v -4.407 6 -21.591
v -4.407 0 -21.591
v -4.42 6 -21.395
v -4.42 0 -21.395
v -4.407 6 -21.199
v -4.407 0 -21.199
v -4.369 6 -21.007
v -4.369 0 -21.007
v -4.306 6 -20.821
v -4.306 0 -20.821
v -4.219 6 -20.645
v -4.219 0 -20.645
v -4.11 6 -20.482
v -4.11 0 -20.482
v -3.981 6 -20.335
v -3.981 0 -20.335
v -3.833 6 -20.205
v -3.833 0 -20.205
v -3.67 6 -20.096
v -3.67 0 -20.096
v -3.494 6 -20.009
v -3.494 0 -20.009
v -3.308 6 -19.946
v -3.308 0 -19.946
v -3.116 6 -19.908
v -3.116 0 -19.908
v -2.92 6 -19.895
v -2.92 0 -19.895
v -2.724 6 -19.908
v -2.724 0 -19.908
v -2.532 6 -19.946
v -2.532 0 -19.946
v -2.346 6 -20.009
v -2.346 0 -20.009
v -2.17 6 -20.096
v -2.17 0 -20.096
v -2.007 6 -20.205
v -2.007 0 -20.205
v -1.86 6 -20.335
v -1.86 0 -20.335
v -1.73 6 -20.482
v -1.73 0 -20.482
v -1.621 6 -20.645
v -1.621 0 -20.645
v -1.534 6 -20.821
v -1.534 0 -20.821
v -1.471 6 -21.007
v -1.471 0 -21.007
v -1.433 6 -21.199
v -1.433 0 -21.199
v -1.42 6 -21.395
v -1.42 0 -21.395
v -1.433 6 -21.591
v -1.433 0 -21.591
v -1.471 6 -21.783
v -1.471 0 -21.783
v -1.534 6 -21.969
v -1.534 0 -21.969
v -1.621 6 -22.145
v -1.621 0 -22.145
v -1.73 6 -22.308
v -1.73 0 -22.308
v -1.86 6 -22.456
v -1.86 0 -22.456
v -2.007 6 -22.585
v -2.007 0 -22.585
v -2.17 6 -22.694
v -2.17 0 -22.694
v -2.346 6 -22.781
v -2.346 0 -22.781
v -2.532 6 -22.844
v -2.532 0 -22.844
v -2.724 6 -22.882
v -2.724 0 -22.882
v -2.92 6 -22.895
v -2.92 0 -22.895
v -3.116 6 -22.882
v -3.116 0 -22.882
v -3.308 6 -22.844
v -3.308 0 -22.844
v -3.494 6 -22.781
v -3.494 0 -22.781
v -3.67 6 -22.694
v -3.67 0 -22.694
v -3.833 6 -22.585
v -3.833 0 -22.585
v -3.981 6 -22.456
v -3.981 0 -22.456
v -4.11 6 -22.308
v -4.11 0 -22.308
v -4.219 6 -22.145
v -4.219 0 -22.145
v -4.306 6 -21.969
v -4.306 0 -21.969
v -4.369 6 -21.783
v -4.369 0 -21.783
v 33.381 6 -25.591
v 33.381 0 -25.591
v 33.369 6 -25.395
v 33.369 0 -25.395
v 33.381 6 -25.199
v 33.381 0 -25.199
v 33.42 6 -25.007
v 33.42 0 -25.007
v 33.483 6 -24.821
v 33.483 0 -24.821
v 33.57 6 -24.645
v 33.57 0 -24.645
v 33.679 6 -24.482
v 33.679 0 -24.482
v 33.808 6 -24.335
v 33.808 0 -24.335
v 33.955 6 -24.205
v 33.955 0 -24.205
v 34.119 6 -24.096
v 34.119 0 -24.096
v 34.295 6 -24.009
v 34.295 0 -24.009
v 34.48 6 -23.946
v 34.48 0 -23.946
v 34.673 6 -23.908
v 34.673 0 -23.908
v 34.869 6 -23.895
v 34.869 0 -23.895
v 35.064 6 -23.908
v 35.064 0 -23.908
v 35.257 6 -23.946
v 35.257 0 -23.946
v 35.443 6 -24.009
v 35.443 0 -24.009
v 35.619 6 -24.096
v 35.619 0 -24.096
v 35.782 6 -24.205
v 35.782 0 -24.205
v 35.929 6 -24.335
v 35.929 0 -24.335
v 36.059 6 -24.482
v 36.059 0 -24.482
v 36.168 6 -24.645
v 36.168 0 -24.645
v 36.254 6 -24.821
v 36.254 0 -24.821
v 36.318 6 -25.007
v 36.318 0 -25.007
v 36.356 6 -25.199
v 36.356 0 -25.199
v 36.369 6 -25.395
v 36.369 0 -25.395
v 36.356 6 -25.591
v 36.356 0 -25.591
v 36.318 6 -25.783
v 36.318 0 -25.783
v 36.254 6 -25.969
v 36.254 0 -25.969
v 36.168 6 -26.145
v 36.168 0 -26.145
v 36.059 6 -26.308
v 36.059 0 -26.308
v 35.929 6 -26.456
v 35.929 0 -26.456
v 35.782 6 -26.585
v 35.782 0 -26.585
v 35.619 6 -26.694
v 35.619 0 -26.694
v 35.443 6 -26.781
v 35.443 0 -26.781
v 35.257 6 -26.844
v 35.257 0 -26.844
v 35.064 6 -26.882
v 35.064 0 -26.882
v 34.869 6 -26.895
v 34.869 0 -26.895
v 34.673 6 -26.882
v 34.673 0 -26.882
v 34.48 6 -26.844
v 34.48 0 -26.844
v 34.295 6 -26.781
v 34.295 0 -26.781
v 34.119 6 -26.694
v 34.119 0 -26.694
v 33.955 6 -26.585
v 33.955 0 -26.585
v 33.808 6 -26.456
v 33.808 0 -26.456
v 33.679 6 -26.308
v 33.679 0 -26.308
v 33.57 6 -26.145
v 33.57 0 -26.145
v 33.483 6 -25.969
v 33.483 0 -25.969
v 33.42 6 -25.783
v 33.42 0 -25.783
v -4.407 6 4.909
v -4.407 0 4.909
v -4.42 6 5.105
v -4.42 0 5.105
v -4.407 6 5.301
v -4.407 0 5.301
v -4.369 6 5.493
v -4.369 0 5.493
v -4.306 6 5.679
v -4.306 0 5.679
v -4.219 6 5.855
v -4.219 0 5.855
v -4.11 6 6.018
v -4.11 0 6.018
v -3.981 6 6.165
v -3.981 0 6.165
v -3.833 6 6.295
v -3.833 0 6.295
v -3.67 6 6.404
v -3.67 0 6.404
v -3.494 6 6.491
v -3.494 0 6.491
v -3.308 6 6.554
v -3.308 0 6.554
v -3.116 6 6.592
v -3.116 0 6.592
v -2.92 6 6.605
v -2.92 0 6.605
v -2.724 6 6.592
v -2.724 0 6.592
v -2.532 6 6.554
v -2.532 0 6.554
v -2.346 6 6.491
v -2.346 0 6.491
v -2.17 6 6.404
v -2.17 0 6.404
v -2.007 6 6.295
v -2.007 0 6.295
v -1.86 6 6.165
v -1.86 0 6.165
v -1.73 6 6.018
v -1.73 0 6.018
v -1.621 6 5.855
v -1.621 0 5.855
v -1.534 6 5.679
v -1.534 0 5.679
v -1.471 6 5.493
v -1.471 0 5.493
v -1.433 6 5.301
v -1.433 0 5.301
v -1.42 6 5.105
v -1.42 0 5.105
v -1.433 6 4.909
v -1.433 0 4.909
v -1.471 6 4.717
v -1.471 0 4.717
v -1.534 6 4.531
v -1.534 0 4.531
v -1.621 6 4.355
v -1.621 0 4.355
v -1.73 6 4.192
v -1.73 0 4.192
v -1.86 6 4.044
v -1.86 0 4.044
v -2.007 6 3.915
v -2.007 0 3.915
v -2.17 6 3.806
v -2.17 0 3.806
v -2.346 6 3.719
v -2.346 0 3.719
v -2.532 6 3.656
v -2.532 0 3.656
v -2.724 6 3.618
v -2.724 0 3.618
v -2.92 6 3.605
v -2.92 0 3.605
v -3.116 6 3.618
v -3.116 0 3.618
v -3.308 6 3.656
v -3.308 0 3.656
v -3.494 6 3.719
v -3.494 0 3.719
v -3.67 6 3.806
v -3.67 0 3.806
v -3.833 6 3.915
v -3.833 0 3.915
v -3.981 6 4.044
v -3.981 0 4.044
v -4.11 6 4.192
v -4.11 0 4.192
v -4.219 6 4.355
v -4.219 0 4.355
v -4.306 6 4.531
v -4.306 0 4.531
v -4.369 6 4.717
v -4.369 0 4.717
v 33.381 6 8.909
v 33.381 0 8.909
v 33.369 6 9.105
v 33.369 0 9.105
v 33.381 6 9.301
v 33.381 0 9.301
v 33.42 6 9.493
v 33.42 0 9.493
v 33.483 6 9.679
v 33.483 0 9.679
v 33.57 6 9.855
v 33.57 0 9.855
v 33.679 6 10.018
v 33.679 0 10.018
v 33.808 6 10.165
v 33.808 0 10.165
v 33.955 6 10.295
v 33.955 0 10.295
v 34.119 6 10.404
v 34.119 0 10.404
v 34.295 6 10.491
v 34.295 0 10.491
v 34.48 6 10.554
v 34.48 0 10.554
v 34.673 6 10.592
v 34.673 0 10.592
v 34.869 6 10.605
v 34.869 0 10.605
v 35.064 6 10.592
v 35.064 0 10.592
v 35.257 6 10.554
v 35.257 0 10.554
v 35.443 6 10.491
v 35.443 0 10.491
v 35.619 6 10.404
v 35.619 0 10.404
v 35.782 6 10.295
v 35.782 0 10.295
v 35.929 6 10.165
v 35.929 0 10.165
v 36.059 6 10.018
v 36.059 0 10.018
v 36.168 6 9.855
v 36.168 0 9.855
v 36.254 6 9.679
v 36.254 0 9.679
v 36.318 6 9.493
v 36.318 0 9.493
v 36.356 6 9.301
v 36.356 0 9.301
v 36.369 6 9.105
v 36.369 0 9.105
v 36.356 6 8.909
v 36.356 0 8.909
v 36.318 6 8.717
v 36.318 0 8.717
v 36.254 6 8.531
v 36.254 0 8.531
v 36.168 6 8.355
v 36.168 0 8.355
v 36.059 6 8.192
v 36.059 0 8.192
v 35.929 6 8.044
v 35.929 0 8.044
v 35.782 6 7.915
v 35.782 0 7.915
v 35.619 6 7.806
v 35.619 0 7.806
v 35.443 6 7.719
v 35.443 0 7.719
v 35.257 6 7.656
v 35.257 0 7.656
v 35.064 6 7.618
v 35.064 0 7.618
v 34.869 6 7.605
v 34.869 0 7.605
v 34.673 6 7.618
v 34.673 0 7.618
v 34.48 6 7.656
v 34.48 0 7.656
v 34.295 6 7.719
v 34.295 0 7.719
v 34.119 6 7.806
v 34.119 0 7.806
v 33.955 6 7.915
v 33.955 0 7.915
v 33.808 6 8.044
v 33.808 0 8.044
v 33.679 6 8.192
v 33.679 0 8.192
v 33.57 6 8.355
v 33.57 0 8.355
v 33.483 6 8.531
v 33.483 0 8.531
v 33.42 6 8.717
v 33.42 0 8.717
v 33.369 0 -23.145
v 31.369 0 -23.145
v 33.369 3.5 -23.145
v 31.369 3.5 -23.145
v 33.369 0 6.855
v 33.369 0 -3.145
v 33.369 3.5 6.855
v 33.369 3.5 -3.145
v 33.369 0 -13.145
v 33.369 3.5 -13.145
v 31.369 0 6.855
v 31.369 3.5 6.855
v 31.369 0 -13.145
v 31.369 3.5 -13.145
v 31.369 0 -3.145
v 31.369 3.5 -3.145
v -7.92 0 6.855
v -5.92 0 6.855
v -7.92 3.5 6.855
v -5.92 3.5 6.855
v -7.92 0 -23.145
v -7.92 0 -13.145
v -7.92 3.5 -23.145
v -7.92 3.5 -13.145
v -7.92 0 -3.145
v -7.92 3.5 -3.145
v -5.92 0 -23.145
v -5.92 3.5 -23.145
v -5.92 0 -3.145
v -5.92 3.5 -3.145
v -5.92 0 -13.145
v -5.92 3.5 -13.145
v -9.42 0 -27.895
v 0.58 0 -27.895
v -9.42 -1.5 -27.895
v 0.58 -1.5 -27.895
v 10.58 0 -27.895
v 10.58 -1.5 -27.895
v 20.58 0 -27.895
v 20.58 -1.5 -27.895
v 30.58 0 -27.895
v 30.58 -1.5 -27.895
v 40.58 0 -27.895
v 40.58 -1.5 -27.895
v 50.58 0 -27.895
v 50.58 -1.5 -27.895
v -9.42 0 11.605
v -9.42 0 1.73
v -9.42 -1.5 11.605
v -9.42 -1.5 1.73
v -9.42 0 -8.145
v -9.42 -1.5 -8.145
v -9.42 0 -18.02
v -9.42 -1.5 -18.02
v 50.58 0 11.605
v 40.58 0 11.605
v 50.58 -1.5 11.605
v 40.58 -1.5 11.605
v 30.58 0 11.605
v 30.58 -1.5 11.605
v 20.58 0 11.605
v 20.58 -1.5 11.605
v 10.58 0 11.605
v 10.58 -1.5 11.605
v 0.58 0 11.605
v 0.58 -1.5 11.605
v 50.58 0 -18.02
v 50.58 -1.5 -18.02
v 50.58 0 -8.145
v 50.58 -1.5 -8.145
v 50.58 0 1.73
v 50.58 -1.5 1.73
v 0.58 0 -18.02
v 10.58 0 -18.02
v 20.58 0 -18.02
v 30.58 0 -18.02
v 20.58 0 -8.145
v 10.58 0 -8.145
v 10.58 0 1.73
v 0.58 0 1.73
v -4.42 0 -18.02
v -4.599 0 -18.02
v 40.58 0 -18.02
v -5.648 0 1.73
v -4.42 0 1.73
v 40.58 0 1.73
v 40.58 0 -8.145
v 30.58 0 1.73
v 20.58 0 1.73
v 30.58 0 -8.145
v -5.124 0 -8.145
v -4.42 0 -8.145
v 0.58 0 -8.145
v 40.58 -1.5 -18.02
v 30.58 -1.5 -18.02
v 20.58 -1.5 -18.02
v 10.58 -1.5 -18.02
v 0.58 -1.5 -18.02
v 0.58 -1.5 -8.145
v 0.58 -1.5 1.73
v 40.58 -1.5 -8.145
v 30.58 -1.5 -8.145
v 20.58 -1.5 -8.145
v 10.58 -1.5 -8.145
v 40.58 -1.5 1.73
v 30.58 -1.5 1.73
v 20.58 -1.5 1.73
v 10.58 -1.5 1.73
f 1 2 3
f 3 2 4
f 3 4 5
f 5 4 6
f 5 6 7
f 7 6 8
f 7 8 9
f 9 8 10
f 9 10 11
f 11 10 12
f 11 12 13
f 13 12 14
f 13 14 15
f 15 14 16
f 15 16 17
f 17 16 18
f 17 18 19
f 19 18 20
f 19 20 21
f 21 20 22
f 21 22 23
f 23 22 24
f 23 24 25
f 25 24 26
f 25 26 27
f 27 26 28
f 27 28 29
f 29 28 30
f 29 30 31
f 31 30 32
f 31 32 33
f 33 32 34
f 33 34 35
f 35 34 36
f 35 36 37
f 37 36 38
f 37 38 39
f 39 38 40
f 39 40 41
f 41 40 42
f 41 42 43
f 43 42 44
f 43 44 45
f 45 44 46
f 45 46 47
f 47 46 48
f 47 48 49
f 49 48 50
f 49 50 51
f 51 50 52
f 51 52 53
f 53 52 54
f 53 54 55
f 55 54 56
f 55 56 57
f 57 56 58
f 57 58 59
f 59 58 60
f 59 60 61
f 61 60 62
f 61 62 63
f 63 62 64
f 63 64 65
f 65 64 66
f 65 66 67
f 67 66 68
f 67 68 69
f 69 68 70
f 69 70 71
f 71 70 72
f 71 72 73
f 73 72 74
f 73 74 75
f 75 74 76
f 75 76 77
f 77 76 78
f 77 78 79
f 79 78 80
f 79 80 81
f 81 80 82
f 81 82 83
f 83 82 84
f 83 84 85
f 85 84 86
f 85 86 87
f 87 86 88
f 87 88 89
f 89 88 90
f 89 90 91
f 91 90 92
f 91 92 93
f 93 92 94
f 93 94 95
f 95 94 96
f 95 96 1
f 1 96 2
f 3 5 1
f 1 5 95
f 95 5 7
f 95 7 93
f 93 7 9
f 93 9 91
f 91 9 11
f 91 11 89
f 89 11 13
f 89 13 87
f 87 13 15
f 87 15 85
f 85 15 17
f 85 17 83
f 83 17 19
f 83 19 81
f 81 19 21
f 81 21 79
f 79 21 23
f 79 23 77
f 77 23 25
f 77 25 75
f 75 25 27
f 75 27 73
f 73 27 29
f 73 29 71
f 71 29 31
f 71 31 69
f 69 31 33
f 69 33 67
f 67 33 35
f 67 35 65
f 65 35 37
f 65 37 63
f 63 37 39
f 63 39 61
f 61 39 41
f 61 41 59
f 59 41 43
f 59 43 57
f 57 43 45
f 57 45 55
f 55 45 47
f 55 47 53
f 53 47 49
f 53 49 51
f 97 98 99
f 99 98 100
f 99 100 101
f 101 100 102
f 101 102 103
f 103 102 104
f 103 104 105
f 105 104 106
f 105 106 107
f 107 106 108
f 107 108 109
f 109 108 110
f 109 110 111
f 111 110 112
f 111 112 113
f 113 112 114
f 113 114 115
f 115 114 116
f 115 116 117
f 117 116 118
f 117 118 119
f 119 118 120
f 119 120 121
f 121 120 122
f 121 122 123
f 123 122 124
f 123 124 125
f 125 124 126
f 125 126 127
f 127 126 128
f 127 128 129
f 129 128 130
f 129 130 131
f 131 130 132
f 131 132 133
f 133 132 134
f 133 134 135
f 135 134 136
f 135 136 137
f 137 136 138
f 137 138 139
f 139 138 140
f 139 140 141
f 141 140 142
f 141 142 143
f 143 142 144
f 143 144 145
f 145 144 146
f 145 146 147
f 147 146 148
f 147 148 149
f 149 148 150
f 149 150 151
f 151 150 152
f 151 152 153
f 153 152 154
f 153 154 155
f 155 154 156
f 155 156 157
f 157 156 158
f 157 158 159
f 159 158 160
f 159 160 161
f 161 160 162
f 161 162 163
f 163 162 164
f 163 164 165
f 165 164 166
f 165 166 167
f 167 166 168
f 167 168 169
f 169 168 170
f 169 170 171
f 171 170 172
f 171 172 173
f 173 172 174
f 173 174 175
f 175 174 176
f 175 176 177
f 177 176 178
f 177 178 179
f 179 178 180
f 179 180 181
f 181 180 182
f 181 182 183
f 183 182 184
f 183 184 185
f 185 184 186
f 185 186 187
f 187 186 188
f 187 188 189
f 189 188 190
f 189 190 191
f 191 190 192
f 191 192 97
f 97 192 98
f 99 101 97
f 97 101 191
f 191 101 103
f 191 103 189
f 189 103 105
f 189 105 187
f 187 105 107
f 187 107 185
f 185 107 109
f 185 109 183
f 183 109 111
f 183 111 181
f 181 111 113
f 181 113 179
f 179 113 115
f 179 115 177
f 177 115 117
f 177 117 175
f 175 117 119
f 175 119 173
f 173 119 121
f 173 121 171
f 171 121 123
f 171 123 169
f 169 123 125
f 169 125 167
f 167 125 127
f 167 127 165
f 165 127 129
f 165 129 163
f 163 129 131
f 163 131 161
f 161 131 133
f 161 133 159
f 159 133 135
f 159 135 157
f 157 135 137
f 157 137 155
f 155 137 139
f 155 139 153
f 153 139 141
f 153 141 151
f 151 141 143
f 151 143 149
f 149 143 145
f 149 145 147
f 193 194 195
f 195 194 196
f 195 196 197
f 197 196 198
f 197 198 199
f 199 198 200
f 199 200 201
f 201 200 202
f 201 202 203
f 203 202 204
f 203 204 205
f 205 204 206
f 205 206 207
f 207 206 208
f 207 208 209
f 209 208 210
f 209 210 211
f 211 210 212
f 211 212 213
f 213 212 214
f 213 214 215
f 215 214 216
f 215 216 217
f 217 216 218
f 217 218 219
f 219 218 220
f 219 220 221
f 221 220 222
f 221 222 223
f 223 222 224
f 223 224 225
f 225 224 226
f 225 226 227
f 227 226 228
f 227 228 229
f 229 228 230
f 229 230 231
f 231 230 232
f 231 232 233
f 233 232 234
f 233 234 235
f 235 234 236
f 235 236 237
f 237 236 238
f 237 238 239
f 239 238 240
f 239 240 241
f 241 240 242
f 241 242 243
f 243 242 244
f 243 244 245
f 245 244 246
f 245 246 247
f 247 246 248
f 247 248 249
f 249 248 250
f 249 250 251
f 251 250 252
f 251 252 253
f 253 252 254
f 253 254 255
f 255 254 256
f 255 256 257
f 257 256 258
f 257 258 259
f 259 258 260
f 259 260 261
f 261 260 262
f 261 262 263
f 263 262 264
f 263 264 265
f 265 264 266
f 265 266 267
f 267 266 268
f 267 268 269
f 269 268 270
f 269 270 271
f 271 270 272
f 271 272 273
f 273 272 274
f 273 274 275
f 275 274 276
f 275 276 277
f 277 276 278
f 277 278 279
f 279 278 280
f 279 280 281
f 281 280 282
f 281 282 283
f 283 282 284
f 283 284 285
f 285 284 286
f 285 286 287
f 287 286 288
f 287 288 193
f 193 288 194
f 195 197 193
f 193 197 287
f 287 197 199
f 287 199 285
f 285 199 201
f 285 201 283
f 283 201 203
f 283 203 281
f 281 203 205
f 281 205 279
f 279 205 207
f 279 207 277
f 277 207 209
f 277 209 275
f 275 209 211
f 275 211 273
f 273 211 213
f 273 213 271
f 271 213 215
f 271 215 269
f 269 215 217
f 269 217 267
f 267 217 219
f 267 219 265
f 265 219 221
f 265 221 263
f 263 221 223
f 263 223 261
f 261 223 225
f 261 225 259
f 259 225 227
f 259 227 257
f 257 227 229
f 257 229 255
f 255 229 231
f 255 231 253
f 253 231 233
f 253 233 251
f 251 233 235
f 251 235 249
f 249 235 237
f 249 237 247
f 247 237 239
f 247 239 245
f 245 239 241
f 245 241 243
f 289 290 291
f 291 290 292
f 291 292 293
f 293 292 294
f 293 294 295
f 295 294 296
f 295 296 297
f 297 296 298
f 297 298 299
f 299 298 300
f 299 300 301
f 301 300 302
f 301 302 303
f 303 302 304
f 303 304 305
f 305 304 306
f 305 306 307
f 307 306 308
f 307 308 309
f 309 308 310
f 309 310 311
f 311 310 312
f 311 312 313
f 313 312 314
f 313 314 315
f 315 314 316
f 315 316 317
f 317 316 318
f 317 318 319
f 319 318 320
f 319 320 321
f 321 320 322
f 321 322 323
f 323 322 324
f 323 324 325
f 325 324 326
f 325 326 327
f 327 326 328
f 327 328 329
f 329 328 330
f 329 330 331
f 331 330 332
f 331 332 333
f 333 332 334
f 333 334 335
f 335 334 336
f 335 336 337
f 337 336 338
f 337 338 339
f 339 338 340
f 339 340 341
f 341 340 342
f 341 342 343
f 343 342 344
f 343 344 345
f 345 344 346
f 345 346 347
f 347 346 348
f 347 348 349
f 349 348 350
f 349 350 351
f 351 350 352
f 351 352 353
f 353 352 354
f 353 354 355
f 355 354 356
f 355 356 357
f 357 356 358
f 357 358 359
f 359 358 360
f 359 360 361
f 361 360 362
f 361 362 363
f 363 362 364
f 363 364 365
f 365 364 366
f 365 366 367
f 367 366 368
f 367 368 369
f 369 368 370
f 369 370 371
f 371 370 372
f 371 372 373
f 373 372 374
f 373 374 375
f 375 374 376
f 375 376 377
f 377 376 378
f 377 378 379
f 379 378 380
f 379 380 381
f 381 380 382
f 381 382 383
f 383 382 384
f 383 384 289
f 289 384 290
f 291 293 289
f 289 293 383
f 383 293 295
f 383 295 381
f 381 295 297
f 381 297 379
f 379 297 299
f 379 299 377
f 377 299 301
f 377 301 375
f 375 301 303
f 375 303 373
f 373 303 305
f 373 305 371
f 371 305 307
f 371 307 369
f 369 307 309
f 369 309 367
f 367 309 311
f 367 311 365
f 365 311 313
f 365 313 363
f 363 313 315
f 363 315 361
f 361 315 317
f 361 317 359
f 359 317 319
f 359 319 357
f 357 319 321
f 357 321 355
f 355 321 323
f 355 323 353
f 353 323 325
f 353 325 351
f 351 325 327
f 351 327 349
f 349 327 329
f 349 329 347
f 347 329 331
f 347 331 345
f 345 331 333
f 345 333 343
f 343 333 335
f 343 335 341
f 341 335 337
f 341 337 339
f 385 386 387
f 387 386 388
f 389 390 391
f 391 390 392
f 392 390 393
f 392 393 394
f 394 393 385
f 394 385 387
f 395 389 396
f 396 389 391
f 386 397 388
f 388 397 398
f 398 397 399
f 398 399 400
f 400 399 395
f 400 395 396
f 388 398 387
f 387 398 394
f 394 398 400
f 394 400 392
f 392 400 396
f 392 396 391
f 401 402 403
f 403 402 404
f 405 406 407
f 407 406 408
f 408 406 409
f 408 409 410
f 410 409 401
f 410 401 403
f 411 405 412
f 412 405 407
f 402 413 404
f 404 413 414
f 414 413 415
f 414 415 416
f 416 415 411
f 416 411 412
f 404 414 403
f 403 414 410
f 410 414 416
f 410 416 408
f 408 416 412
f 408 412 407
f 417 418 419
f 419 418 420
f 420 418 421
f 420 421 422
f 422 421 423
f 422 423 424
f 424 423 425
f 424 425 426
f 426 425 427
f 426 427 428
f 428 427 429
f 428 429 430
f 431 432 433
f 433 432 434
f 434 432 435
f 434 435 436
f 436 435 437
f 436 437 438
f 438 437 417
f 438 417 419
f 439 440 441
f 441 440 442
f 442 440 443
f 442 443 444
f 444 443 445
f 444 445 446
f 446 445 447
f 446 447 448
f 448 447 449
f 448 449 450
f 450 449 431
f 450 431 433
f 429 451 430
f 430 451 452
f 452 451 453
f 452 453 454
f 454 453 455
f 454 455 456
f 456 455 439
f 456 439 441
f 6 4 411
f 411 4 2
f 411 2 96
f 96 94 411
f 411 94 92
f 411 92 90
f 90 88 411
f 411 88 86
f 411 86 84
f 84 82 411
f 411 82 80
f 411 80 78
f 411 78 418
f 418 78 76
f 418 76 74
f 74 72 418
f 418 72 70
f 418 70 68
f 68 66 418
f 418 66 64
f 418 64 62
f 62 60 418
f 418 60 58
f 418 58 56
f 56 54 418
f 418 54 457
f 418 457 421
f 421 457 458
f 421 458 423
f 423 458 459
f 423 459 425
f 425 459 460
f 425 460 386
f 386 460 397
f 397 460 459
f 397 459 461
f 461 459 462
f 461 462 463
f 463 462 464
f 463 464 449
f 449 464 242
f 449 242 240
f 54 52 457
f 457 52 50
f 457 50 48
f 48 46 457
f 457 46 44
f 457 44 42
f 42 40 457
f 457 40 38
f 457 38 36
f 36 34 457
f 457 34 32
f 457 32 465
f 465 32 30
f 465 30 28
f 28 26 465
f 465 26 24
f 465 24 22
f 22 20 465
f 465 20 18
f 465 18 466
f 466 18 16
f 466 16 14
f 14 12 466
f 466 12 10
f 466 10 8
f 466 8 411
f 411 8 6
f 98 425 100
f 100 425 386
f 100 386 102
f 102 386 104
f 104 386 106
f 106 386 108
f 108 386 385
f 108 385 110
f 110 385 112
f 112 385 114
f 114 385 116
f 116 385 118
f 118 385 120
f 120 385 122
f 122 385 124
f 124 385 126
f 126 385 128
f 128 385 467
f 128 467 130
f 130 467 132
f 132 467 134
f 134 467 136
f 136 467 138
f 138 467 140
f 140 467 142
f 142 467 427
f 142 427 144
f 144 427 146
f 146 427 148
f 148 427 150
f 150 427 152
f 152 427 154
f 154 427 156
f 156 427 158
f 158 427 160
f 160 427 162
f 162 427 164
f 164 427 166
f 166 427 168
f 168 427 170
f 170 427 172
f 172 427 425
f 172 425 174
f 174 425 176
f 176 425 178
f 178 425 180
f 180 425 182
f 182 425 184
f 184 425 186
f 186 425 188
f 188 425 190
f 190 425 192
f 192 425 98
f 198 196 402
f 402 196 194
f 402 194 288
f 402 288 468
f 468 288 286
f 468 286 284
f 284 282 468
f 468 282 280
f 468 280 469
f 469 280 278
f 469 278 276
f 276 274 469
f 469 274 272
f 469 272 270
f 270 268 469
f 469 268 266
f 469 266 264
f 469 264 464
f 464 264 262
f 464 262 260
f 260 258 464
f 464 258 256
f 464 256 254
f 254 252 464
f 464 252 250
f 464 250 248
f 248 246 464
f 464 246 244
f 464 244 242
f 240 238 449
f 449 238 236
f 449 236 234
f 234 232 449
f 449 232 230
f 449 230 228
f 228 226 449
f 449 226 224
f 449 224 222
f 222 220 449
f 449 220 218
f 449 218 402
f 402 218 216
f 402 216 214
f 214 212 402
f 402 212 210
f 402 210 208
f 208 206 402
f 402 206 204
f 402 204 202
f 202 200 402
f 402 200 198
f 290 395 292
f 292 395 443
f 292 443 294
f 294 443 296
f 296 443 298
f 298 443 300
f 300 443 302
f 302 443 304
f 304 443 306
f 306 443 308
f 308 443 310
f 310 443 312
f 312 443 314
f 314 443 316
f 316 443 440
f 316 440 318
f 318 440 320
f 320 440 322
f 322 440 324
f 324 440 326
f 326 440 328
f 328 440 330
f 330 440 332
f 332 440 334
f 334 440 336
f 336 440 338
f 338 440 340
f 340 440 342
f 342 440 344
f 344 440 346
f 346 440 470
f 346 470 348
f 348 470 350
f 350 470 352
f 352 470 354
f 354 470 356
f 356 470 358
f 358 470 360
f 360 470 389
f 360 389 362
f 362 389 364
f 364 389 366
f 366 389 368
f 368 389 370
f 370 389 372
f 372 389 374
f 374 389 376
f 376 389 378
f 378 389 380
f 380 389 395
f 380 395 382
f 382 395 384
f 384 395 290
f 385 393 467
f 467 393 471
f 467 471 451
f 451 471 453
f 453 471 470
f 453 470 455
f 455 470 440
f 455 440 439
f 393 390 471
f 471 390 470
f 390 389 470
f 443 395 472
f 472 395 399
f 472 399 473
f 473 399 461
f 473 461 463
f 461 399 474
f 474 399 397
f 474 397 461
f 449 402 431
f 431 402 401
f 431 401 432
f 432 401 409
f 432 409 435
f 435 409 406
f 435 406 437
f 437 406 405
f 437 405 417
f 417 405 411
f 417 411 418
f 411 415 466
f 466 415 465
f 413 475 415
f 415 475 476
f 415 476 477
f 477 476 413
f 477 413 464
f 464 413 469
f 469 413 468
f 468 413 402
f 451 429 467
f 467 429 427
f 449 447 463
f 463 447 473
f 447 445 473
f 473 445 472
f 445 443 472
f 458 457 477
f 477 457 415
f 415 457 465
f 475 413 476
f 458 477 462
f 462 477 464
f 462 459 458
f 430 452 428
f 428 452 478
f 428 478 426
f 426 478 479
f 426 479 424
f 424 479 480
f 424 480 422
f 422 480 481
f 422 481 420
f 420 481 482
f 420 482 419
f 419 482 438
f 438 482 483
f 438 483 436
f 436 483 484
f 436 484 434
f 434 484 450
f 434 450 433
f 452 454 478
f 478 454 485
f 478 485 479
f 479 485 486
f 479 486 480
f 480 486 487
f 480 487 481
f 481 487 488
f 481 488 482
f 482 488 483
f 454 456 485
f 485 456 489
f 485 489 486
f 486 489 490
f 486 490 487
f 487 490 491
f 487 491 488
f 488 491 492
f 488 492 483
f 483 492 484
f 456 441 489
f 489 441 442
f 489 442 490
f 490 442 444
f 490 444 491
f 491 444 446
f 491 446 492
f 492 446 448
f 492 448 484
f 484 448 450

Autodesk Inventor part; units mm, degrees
ref_plane "YZ Plane" through (0, 0, 0) normal (1, 0, 0) x (0, 1, 0)
ref_plane "XZ Plane" through (0, 0, 0) normal (0, 1, 0) x (-1, 0, 0)
ref_plane "XY Plane" through (0, 0, 0) normal (0, 0, 1) x (1, 0, 0)
sketch "Sketch5" plane through (0, 0, 0) normal (0, 1, 0) x (-1, 0, 0)
  line L0 (9.4203, 11.6048) -> (-50.5797, 11.6048)
  line L1 (-50.5797, 11.6048) -> (-50.5797, -27.8952)
  line L2 (-50.5797, -27.8952) -> (9.4203, -27.8952)
  line L3 (9.4203, -27.8952) -> (9.4203, 11.6048)
  line L4 (-33.3686, -23.1452) -> (-31.3686, -23.1452)
  line L5 (-31.3686, -23.1452) -> (-31.3686, 6.8548)
  line L6 (-31.3686, 6.8548) -> (-33.3686, 6.8548)
  line L7 (-33.3686, 6.8548) -> (-33.3686, -23.1452)
  line L8 (7.9203, 6.8548) -> (5.9203, 6.8548)
  line L9 (5.9203, 6.8548) -> (5.9203, -23.1452)
  line L10 (5.9203, -23.1452) -> (7.9203, -23.1452)
  line L11 (7.9203, -23.1452) -> (7.9203, 6.8548)
  circle A0 centre (2.9203, -21.3952) radius 1.5
  circle A1 centre (2.9203, 5.1048) radius 1.5
  circle A2 centre (-34.8686, -25.3952) radius 1.5
  circle A3 centre (-34.8686, 9.1048) radius 1.5
  point P0 (0, 0)
  dimension "d9" = 60
  dimension "d10" = 39.5
  dimension "d24" = 2
  dimension "d27" = 4.75
  dimension "d29" = 2
  dimension "d31" = 1.5
  dimension "d32" = 4.75
  dimension "d33" = 4.75
  dimension "d40" = 3
  dimension "d41" = 6.5
  dimension "d42" = 6.5
  dimension "d43" = 3
  dimension "d44" = 6.5
  dimension "d45" = 6.5
  dimension "d46" = 3
  dimension "d47" = 2.5
  dimension "d49" = 3
  dimension "d50" = 2.5
  dimension "d59" = 35
  dimension "d62" = 1.5
  dimension "d66" = 35
extrude "Extrusion8" add sketch "Sketch5" against normal blind 1.5 contours L3 L2 L1 L0 | L7 L6 L5 L4 | L11 L10 L9 L8 | A0 | A1 | A2 | A3
extrude "Extrusion9" add sketch "Sketch5" along normal blind 3.5 contours L7 L6 L5 L4 | L11 L10 L9 L8
extrude "Extrusion10" add sketch "Sketch5" along normal blind 6 contours A0 | A1 | A2 | A3
properties part number "RFID-RC522 Holder 3.2"
